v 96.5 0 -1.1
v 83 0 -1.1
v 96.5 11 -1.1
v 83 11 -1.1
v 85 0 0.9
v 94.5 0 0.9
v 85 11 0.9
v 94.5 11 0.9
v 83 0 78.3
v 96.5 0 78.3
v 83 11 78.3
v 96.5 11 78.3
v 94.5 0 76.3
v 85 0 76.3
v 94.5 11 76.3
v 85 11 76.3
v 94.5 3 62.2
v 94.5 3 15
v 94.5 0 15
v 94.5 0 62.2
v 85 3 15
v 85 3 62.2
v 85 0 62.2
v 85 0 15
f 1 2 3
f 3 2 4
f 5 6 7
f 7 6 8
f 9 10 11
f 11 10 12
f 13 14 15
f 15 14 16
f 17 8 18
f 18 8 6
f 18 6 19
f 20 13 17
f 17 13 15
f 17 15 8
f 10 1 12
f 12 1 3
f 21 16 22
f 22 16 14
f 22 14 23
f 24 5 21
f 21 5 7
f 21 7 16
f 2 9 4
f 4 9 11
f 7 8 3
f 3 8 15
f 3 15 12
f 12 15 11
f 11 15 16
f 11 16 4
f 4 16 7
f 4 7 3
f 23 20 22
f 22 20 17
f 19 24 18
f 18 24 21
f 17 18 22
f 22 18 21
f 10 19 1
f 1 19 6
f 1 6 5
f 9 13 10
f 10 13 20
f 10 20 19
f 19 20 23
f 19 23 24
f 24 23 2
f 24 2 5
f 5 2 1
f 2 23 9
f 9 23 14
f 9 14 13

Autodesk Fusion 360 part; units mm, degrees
sketch "Sketch1" plane through (0, 0, 0) normal (0, 1, 0) x (1, 0, 0)
  line L0 (0, 0) -> (20.4, 0) construction
  line L1 (20.4, 0) -> (20.4, -88.85) construction
  line L2 (0, 0) -> (20.4, 0)
  line L3 (20.4, 0) -> (20.4, -88.85)
  line L4 (20.4, -88.85) -> (0, -88.85)
  line L5 (0, -88.85) -> (0, 0)
  line L6 (20.4, 0) -> (17.9, 0) construction
  line L7 (17.9, 0) -> (17.9, -2.5) construction
  line L8 (17.9, -2.5) -> (20.4, -2.5) construction
  line L9 (20.4, -2.5) -> (20.4, 0) construction
  circle A0 centre (17.9, -2.5) radius 1.5
  line L10 (0, 0) -> (2.5, 0) construction
  line L11 (2.5, 0) -> (2.5, -2.5) construction
  line L12 (2.5, -2.5) -> (0, -2.5) construction
  line L13 (0, -2.5) -> (0, 0) construction
  line L14 (0, -88.85) -> (2.5, -88.85) construction
  line L15 (2.5, -88.85) -> (2.5, -86.35) construction
  line L16 (2.5, -86.35) -> (0, -86.35) construction
  line L17 (0, -86.35) -> (0, -88.85) construction
  line L18 (20.4, -88.85) -> (17.9, -88.85) construction
  line L19 (17.9, -88.85) -> (17.9, -86.35) construction
  line L20 (17.9, -86.35) -> (20.4, -86.35) construction
  line L21 (20.4, -86.35) -> (20.4, -88.85) construction
  circle A1 centre (2.5, -86.35) radius 1.5
  circle A2 centre (17.9, -86.35) radius 1.5
  circle A3 centre (2.5, -2.5) radius 1.5
  circle A4 centre (2.5, -2.5) radius 2
  circle A5 centre (17.9, -2.5) radius 2
  circle A6 centre (2.5, -86.35) radius 2
  circle A7 centre (17.9, -86.35) radius 2
  dimension "d1" = 20.4
  dimension "d2" = 88.85
  dimension "d3" = 2.5
  dimension "d4" = 2.5
  dimension "d5" = 3
  dimension "d6" = 2.5
  dimension "d7" = 2.5
  dimension "d8" = 2.5
  dimension "d9" = 2.5
  dimension "d10" = 2.5
  dimension "d11" = 2.5
  dimension "d12" = 3
  dimension "d13" = 3
  dimension "d14" = 3
  dimension "d15" = 4
  dimension "d16" = 4
  dimension "d17" = 4
  dimension "d18" = 4
extrude "Extrude1" add sketch "Sketch1" along normal blind 1 contours L2 L3 L4 L5 makes body 1
extrude "Extrude2" add sketch "Sketch1" along normal blind 1 contours A0 | A1 | A2 | A3 | A4 | A5 | A6 | A7 bodies 1
extrude "Extrude3" add sketch "Sketch1" along normal blind 10 contours A4 | A5 | A6 | A7 bodies 1
extrude "Extrude4" add 4 faces at (17.7887, 1, 3.5508) (2.9404, 1, 2.5827) (17.4222, 1, 86.4974) (2.3887, 1, 87.4008) along direction (0, 1, 0) blind 5 on bodies 1 bodies 1
sketch "Sketch2" plane through (0, 0, 0) normal (0, 1, 0) x (1, 0, 0)
  line L0 (55, 0) -> (64.5, 0) construction
  line L1 (55, 0) -> (55, -75.2) construction
  line L2 (55, -75.2) -> (64.5, -75.2)
  line L3 (64.5, -75.2) -> (64.5, 0)
  line L4 (64.5, 0) -> (55, 0)
  line L5 (55, 0) -> (55, -75.2)
  line L6 (64.5, -75.2) -> (68.5, -75.2) construction
  line L7 (68.5, -75.2) -> (68.5, -79.2) construction
  line L8 (68.5, -79.2) -> (64.5, -79.2) construction
  line L9 (64.5, -79.2) -> (64.5, -75.2) construction
  line L10 (55, 0) -> (51, 0) construction
  line L11 (51, 0) -> (51, 4) construction
  line L12 (51, 4) -> (55, 4) construction
  line L13 (55, 4) -> (55, 0) construction
  line L14 (51, 4) -> (68.5, 4)
  line L15 (68.5, 4) -> (68.5, -79.2)
  line L16 (68.5, -79.2) -> (51, -79.2)
  line L17 (51, -79.2) -> (51, 4)
  line L18 (59.75, -75.2) -> (59.75, -61.2) construction
  line L19 (59.75, 0) -> (59.75, -14) construction
  line L20 (59.75, -14) -> (55, -14) construction
  line L21 (59.75, -61.2) -> (64.5, -61.2) construction
  line L22 (55, -14) -> (64.5, -14)
  line L23 (64.5, -14) -> (64.5, -61.2)
  line L24 (64.5, -61.2) -> (55, -61.2)
  line L25 (55, -61.2) -> (55, -14)
  line L26 (55, -75.2) -> (64.5, -75.2)
  line L27 (64.5, -75.2) -> (64.5, -79.2)
  line L28 (64.5, -79.2) -> (55, -79.2)
  line L29 (55, -79.2) -> (55, -75.2)
  line L30 (55, 0) -> (64.5, 0)
  line L31 (64.5, 0) -> (64.5, 4)
  line L32 (64.5, 4) -> (55, 4)
  line L33 (55, 4) -> (55, 0)
  dimension "d27" = 9.5
  dimension "d28" = 75.2
  dimension "d29" = 4
  dimension "d30" = 4
  dimension "d31" = 4
  dimension "d32" = 4
  dimension "d35" = 14
  dimension "d36" = 14
extrude "Extrude5" add sketch "Sketch2" along normal blind 1 separate body makes body 2
extrude "Extrude6" add sketch "Sketch2" along normal blind 10 contours L3 L5 L22 L23 L24 L25 bodies 2
extrude "Extrude7" add sketch "Sketch2" along normal blind 20 contours L5 L14 L16 L17 L25 L29 L33 | L3 L14 L15 L16 L23 L27 L31 bodies 2
sketch "Sketch3" plane through (0, 0, 0) normal (0, 1, 0) x (1, 0, 0)
  line L0 (85, -15) -> (94.5, -15)
  line L1 (94.5, -15) -> (94.5, -62.2)
  line L2 (94.5, -62.2) -> (85, -62.2)
  line L3 (85, -62.2) -> (85, -15)
  line L4 (94.5, -15) -> (96.5, -15)
  line L5 (96.5, -15) -> (96.5, -62.2)
  line L6 (96.5, -62.2) -> (94.5, -62.2)
  line L7 (94.5, -62.2) -> (94.5, -15)
  line L8 (85, -15) -> (83, -15)
  line L9 (83, -15) -> (83, -62.2)
  line L10 (83, -62.2) -> (85, -62.2)
  line L11 (85, -62.2) -> (85, -15)
  line L12 (85, -38.6) -> (85, -0.9) construction
  line L13 (94.5, -38.6) -> (94.5, -0.9) construction
  line L14 (85, -38.6) -> (85, -76.3) construction
  line L15 (94.5, -38.6) -> (94.5, -76.3) construction
  line L16 (83, -62.2) -> (85, -62.2)
  line L17 (85, -62.2) -> (85, -76.3)
  line L18 (85, -76.3) -> (83, -76.3)
  line L19 (83, -76.3) -> (83, -62.2)
  line L20 (94.5, -76.3) -> (96.5, -76.3)
  line L21 (96.5, -76.3) -> (96.5, -62.2)
  line L22 (96.5, -62.2) -> (94.5, -62.2)
  line L23 (94.5, -62.2) -> (94.5, -76.3)
  line L24 (83, -76.3) -> (96.5, -76.3)
  line L25 (96.5, -76.3) -> (96.5, -78.3)
  line L26 (96.5, -78.3) -> (83, -78.3)
  line L27 (83, -78.3) -> (83, -76.3)
  line L28 (85, -0.9) -> (83, -0.9)
  line L29 (83, -0.9) -> (83, -15)
  line L30 (83, -15) -> (85, -15)
  line L31 (85, -15) -> (85, -0.9)
  line L32 (94.5, -0.9) -> (96.5, -0.9)
  line L33 (96.5, -0.9) -> (96.5, -15)
  line L34 (96.5, -15) -> (94.5, -15)
  line L35 (94.5, -15) -> (94.5, -0.9)
  line L36 (96.5, -0.9) -> (83, -0.9)
  line L37 (83, -0.9) -> (83, 1.1)
  line L38 (83, 1.1) -> (96.5, 1.1)
  line L39 (96.5, 1.1) -> (96.5, -0.9)
  dimension "d41" = 9.5
  dimension "d42" = 47.2
  dimension "d43" = 2
  dimension "d44" = 2
  dimension "d49" = 37.7
  dimension "d50" = 37.7
  dimension "d51" = 37.7
  dimension "d52" = 37.7
  dimension "d53" = 2
  dimension "d54" = 2
extrude "Extrude8" add sketch "Sketch3" along normal blind 3 separate body contours L0 L1 L2 L3 L7 L11 makes body 3
extrude "Extrude9" add sketch "Sketch3" along normal blind 11 contours L3 L8 L9 L10 L11 L16 L30 | L1 L4 L5 L6 L7 L22 L34 bodies 3
extrude "Extrude10" add sketch "Sketch3" along normal blind 11 contours L8 L28 L29 L30 L31 L36 | L4 L32 L33 L34 L35 L36 | L10 L16 L17 L18 L19 L24 | L28 L32 L36 L37 L38 L39 | L6 L20 L21 L22 L23 L24 | L18 L20 L24 L25 L26 L27 bodies 3
hidden bodies 1 2
